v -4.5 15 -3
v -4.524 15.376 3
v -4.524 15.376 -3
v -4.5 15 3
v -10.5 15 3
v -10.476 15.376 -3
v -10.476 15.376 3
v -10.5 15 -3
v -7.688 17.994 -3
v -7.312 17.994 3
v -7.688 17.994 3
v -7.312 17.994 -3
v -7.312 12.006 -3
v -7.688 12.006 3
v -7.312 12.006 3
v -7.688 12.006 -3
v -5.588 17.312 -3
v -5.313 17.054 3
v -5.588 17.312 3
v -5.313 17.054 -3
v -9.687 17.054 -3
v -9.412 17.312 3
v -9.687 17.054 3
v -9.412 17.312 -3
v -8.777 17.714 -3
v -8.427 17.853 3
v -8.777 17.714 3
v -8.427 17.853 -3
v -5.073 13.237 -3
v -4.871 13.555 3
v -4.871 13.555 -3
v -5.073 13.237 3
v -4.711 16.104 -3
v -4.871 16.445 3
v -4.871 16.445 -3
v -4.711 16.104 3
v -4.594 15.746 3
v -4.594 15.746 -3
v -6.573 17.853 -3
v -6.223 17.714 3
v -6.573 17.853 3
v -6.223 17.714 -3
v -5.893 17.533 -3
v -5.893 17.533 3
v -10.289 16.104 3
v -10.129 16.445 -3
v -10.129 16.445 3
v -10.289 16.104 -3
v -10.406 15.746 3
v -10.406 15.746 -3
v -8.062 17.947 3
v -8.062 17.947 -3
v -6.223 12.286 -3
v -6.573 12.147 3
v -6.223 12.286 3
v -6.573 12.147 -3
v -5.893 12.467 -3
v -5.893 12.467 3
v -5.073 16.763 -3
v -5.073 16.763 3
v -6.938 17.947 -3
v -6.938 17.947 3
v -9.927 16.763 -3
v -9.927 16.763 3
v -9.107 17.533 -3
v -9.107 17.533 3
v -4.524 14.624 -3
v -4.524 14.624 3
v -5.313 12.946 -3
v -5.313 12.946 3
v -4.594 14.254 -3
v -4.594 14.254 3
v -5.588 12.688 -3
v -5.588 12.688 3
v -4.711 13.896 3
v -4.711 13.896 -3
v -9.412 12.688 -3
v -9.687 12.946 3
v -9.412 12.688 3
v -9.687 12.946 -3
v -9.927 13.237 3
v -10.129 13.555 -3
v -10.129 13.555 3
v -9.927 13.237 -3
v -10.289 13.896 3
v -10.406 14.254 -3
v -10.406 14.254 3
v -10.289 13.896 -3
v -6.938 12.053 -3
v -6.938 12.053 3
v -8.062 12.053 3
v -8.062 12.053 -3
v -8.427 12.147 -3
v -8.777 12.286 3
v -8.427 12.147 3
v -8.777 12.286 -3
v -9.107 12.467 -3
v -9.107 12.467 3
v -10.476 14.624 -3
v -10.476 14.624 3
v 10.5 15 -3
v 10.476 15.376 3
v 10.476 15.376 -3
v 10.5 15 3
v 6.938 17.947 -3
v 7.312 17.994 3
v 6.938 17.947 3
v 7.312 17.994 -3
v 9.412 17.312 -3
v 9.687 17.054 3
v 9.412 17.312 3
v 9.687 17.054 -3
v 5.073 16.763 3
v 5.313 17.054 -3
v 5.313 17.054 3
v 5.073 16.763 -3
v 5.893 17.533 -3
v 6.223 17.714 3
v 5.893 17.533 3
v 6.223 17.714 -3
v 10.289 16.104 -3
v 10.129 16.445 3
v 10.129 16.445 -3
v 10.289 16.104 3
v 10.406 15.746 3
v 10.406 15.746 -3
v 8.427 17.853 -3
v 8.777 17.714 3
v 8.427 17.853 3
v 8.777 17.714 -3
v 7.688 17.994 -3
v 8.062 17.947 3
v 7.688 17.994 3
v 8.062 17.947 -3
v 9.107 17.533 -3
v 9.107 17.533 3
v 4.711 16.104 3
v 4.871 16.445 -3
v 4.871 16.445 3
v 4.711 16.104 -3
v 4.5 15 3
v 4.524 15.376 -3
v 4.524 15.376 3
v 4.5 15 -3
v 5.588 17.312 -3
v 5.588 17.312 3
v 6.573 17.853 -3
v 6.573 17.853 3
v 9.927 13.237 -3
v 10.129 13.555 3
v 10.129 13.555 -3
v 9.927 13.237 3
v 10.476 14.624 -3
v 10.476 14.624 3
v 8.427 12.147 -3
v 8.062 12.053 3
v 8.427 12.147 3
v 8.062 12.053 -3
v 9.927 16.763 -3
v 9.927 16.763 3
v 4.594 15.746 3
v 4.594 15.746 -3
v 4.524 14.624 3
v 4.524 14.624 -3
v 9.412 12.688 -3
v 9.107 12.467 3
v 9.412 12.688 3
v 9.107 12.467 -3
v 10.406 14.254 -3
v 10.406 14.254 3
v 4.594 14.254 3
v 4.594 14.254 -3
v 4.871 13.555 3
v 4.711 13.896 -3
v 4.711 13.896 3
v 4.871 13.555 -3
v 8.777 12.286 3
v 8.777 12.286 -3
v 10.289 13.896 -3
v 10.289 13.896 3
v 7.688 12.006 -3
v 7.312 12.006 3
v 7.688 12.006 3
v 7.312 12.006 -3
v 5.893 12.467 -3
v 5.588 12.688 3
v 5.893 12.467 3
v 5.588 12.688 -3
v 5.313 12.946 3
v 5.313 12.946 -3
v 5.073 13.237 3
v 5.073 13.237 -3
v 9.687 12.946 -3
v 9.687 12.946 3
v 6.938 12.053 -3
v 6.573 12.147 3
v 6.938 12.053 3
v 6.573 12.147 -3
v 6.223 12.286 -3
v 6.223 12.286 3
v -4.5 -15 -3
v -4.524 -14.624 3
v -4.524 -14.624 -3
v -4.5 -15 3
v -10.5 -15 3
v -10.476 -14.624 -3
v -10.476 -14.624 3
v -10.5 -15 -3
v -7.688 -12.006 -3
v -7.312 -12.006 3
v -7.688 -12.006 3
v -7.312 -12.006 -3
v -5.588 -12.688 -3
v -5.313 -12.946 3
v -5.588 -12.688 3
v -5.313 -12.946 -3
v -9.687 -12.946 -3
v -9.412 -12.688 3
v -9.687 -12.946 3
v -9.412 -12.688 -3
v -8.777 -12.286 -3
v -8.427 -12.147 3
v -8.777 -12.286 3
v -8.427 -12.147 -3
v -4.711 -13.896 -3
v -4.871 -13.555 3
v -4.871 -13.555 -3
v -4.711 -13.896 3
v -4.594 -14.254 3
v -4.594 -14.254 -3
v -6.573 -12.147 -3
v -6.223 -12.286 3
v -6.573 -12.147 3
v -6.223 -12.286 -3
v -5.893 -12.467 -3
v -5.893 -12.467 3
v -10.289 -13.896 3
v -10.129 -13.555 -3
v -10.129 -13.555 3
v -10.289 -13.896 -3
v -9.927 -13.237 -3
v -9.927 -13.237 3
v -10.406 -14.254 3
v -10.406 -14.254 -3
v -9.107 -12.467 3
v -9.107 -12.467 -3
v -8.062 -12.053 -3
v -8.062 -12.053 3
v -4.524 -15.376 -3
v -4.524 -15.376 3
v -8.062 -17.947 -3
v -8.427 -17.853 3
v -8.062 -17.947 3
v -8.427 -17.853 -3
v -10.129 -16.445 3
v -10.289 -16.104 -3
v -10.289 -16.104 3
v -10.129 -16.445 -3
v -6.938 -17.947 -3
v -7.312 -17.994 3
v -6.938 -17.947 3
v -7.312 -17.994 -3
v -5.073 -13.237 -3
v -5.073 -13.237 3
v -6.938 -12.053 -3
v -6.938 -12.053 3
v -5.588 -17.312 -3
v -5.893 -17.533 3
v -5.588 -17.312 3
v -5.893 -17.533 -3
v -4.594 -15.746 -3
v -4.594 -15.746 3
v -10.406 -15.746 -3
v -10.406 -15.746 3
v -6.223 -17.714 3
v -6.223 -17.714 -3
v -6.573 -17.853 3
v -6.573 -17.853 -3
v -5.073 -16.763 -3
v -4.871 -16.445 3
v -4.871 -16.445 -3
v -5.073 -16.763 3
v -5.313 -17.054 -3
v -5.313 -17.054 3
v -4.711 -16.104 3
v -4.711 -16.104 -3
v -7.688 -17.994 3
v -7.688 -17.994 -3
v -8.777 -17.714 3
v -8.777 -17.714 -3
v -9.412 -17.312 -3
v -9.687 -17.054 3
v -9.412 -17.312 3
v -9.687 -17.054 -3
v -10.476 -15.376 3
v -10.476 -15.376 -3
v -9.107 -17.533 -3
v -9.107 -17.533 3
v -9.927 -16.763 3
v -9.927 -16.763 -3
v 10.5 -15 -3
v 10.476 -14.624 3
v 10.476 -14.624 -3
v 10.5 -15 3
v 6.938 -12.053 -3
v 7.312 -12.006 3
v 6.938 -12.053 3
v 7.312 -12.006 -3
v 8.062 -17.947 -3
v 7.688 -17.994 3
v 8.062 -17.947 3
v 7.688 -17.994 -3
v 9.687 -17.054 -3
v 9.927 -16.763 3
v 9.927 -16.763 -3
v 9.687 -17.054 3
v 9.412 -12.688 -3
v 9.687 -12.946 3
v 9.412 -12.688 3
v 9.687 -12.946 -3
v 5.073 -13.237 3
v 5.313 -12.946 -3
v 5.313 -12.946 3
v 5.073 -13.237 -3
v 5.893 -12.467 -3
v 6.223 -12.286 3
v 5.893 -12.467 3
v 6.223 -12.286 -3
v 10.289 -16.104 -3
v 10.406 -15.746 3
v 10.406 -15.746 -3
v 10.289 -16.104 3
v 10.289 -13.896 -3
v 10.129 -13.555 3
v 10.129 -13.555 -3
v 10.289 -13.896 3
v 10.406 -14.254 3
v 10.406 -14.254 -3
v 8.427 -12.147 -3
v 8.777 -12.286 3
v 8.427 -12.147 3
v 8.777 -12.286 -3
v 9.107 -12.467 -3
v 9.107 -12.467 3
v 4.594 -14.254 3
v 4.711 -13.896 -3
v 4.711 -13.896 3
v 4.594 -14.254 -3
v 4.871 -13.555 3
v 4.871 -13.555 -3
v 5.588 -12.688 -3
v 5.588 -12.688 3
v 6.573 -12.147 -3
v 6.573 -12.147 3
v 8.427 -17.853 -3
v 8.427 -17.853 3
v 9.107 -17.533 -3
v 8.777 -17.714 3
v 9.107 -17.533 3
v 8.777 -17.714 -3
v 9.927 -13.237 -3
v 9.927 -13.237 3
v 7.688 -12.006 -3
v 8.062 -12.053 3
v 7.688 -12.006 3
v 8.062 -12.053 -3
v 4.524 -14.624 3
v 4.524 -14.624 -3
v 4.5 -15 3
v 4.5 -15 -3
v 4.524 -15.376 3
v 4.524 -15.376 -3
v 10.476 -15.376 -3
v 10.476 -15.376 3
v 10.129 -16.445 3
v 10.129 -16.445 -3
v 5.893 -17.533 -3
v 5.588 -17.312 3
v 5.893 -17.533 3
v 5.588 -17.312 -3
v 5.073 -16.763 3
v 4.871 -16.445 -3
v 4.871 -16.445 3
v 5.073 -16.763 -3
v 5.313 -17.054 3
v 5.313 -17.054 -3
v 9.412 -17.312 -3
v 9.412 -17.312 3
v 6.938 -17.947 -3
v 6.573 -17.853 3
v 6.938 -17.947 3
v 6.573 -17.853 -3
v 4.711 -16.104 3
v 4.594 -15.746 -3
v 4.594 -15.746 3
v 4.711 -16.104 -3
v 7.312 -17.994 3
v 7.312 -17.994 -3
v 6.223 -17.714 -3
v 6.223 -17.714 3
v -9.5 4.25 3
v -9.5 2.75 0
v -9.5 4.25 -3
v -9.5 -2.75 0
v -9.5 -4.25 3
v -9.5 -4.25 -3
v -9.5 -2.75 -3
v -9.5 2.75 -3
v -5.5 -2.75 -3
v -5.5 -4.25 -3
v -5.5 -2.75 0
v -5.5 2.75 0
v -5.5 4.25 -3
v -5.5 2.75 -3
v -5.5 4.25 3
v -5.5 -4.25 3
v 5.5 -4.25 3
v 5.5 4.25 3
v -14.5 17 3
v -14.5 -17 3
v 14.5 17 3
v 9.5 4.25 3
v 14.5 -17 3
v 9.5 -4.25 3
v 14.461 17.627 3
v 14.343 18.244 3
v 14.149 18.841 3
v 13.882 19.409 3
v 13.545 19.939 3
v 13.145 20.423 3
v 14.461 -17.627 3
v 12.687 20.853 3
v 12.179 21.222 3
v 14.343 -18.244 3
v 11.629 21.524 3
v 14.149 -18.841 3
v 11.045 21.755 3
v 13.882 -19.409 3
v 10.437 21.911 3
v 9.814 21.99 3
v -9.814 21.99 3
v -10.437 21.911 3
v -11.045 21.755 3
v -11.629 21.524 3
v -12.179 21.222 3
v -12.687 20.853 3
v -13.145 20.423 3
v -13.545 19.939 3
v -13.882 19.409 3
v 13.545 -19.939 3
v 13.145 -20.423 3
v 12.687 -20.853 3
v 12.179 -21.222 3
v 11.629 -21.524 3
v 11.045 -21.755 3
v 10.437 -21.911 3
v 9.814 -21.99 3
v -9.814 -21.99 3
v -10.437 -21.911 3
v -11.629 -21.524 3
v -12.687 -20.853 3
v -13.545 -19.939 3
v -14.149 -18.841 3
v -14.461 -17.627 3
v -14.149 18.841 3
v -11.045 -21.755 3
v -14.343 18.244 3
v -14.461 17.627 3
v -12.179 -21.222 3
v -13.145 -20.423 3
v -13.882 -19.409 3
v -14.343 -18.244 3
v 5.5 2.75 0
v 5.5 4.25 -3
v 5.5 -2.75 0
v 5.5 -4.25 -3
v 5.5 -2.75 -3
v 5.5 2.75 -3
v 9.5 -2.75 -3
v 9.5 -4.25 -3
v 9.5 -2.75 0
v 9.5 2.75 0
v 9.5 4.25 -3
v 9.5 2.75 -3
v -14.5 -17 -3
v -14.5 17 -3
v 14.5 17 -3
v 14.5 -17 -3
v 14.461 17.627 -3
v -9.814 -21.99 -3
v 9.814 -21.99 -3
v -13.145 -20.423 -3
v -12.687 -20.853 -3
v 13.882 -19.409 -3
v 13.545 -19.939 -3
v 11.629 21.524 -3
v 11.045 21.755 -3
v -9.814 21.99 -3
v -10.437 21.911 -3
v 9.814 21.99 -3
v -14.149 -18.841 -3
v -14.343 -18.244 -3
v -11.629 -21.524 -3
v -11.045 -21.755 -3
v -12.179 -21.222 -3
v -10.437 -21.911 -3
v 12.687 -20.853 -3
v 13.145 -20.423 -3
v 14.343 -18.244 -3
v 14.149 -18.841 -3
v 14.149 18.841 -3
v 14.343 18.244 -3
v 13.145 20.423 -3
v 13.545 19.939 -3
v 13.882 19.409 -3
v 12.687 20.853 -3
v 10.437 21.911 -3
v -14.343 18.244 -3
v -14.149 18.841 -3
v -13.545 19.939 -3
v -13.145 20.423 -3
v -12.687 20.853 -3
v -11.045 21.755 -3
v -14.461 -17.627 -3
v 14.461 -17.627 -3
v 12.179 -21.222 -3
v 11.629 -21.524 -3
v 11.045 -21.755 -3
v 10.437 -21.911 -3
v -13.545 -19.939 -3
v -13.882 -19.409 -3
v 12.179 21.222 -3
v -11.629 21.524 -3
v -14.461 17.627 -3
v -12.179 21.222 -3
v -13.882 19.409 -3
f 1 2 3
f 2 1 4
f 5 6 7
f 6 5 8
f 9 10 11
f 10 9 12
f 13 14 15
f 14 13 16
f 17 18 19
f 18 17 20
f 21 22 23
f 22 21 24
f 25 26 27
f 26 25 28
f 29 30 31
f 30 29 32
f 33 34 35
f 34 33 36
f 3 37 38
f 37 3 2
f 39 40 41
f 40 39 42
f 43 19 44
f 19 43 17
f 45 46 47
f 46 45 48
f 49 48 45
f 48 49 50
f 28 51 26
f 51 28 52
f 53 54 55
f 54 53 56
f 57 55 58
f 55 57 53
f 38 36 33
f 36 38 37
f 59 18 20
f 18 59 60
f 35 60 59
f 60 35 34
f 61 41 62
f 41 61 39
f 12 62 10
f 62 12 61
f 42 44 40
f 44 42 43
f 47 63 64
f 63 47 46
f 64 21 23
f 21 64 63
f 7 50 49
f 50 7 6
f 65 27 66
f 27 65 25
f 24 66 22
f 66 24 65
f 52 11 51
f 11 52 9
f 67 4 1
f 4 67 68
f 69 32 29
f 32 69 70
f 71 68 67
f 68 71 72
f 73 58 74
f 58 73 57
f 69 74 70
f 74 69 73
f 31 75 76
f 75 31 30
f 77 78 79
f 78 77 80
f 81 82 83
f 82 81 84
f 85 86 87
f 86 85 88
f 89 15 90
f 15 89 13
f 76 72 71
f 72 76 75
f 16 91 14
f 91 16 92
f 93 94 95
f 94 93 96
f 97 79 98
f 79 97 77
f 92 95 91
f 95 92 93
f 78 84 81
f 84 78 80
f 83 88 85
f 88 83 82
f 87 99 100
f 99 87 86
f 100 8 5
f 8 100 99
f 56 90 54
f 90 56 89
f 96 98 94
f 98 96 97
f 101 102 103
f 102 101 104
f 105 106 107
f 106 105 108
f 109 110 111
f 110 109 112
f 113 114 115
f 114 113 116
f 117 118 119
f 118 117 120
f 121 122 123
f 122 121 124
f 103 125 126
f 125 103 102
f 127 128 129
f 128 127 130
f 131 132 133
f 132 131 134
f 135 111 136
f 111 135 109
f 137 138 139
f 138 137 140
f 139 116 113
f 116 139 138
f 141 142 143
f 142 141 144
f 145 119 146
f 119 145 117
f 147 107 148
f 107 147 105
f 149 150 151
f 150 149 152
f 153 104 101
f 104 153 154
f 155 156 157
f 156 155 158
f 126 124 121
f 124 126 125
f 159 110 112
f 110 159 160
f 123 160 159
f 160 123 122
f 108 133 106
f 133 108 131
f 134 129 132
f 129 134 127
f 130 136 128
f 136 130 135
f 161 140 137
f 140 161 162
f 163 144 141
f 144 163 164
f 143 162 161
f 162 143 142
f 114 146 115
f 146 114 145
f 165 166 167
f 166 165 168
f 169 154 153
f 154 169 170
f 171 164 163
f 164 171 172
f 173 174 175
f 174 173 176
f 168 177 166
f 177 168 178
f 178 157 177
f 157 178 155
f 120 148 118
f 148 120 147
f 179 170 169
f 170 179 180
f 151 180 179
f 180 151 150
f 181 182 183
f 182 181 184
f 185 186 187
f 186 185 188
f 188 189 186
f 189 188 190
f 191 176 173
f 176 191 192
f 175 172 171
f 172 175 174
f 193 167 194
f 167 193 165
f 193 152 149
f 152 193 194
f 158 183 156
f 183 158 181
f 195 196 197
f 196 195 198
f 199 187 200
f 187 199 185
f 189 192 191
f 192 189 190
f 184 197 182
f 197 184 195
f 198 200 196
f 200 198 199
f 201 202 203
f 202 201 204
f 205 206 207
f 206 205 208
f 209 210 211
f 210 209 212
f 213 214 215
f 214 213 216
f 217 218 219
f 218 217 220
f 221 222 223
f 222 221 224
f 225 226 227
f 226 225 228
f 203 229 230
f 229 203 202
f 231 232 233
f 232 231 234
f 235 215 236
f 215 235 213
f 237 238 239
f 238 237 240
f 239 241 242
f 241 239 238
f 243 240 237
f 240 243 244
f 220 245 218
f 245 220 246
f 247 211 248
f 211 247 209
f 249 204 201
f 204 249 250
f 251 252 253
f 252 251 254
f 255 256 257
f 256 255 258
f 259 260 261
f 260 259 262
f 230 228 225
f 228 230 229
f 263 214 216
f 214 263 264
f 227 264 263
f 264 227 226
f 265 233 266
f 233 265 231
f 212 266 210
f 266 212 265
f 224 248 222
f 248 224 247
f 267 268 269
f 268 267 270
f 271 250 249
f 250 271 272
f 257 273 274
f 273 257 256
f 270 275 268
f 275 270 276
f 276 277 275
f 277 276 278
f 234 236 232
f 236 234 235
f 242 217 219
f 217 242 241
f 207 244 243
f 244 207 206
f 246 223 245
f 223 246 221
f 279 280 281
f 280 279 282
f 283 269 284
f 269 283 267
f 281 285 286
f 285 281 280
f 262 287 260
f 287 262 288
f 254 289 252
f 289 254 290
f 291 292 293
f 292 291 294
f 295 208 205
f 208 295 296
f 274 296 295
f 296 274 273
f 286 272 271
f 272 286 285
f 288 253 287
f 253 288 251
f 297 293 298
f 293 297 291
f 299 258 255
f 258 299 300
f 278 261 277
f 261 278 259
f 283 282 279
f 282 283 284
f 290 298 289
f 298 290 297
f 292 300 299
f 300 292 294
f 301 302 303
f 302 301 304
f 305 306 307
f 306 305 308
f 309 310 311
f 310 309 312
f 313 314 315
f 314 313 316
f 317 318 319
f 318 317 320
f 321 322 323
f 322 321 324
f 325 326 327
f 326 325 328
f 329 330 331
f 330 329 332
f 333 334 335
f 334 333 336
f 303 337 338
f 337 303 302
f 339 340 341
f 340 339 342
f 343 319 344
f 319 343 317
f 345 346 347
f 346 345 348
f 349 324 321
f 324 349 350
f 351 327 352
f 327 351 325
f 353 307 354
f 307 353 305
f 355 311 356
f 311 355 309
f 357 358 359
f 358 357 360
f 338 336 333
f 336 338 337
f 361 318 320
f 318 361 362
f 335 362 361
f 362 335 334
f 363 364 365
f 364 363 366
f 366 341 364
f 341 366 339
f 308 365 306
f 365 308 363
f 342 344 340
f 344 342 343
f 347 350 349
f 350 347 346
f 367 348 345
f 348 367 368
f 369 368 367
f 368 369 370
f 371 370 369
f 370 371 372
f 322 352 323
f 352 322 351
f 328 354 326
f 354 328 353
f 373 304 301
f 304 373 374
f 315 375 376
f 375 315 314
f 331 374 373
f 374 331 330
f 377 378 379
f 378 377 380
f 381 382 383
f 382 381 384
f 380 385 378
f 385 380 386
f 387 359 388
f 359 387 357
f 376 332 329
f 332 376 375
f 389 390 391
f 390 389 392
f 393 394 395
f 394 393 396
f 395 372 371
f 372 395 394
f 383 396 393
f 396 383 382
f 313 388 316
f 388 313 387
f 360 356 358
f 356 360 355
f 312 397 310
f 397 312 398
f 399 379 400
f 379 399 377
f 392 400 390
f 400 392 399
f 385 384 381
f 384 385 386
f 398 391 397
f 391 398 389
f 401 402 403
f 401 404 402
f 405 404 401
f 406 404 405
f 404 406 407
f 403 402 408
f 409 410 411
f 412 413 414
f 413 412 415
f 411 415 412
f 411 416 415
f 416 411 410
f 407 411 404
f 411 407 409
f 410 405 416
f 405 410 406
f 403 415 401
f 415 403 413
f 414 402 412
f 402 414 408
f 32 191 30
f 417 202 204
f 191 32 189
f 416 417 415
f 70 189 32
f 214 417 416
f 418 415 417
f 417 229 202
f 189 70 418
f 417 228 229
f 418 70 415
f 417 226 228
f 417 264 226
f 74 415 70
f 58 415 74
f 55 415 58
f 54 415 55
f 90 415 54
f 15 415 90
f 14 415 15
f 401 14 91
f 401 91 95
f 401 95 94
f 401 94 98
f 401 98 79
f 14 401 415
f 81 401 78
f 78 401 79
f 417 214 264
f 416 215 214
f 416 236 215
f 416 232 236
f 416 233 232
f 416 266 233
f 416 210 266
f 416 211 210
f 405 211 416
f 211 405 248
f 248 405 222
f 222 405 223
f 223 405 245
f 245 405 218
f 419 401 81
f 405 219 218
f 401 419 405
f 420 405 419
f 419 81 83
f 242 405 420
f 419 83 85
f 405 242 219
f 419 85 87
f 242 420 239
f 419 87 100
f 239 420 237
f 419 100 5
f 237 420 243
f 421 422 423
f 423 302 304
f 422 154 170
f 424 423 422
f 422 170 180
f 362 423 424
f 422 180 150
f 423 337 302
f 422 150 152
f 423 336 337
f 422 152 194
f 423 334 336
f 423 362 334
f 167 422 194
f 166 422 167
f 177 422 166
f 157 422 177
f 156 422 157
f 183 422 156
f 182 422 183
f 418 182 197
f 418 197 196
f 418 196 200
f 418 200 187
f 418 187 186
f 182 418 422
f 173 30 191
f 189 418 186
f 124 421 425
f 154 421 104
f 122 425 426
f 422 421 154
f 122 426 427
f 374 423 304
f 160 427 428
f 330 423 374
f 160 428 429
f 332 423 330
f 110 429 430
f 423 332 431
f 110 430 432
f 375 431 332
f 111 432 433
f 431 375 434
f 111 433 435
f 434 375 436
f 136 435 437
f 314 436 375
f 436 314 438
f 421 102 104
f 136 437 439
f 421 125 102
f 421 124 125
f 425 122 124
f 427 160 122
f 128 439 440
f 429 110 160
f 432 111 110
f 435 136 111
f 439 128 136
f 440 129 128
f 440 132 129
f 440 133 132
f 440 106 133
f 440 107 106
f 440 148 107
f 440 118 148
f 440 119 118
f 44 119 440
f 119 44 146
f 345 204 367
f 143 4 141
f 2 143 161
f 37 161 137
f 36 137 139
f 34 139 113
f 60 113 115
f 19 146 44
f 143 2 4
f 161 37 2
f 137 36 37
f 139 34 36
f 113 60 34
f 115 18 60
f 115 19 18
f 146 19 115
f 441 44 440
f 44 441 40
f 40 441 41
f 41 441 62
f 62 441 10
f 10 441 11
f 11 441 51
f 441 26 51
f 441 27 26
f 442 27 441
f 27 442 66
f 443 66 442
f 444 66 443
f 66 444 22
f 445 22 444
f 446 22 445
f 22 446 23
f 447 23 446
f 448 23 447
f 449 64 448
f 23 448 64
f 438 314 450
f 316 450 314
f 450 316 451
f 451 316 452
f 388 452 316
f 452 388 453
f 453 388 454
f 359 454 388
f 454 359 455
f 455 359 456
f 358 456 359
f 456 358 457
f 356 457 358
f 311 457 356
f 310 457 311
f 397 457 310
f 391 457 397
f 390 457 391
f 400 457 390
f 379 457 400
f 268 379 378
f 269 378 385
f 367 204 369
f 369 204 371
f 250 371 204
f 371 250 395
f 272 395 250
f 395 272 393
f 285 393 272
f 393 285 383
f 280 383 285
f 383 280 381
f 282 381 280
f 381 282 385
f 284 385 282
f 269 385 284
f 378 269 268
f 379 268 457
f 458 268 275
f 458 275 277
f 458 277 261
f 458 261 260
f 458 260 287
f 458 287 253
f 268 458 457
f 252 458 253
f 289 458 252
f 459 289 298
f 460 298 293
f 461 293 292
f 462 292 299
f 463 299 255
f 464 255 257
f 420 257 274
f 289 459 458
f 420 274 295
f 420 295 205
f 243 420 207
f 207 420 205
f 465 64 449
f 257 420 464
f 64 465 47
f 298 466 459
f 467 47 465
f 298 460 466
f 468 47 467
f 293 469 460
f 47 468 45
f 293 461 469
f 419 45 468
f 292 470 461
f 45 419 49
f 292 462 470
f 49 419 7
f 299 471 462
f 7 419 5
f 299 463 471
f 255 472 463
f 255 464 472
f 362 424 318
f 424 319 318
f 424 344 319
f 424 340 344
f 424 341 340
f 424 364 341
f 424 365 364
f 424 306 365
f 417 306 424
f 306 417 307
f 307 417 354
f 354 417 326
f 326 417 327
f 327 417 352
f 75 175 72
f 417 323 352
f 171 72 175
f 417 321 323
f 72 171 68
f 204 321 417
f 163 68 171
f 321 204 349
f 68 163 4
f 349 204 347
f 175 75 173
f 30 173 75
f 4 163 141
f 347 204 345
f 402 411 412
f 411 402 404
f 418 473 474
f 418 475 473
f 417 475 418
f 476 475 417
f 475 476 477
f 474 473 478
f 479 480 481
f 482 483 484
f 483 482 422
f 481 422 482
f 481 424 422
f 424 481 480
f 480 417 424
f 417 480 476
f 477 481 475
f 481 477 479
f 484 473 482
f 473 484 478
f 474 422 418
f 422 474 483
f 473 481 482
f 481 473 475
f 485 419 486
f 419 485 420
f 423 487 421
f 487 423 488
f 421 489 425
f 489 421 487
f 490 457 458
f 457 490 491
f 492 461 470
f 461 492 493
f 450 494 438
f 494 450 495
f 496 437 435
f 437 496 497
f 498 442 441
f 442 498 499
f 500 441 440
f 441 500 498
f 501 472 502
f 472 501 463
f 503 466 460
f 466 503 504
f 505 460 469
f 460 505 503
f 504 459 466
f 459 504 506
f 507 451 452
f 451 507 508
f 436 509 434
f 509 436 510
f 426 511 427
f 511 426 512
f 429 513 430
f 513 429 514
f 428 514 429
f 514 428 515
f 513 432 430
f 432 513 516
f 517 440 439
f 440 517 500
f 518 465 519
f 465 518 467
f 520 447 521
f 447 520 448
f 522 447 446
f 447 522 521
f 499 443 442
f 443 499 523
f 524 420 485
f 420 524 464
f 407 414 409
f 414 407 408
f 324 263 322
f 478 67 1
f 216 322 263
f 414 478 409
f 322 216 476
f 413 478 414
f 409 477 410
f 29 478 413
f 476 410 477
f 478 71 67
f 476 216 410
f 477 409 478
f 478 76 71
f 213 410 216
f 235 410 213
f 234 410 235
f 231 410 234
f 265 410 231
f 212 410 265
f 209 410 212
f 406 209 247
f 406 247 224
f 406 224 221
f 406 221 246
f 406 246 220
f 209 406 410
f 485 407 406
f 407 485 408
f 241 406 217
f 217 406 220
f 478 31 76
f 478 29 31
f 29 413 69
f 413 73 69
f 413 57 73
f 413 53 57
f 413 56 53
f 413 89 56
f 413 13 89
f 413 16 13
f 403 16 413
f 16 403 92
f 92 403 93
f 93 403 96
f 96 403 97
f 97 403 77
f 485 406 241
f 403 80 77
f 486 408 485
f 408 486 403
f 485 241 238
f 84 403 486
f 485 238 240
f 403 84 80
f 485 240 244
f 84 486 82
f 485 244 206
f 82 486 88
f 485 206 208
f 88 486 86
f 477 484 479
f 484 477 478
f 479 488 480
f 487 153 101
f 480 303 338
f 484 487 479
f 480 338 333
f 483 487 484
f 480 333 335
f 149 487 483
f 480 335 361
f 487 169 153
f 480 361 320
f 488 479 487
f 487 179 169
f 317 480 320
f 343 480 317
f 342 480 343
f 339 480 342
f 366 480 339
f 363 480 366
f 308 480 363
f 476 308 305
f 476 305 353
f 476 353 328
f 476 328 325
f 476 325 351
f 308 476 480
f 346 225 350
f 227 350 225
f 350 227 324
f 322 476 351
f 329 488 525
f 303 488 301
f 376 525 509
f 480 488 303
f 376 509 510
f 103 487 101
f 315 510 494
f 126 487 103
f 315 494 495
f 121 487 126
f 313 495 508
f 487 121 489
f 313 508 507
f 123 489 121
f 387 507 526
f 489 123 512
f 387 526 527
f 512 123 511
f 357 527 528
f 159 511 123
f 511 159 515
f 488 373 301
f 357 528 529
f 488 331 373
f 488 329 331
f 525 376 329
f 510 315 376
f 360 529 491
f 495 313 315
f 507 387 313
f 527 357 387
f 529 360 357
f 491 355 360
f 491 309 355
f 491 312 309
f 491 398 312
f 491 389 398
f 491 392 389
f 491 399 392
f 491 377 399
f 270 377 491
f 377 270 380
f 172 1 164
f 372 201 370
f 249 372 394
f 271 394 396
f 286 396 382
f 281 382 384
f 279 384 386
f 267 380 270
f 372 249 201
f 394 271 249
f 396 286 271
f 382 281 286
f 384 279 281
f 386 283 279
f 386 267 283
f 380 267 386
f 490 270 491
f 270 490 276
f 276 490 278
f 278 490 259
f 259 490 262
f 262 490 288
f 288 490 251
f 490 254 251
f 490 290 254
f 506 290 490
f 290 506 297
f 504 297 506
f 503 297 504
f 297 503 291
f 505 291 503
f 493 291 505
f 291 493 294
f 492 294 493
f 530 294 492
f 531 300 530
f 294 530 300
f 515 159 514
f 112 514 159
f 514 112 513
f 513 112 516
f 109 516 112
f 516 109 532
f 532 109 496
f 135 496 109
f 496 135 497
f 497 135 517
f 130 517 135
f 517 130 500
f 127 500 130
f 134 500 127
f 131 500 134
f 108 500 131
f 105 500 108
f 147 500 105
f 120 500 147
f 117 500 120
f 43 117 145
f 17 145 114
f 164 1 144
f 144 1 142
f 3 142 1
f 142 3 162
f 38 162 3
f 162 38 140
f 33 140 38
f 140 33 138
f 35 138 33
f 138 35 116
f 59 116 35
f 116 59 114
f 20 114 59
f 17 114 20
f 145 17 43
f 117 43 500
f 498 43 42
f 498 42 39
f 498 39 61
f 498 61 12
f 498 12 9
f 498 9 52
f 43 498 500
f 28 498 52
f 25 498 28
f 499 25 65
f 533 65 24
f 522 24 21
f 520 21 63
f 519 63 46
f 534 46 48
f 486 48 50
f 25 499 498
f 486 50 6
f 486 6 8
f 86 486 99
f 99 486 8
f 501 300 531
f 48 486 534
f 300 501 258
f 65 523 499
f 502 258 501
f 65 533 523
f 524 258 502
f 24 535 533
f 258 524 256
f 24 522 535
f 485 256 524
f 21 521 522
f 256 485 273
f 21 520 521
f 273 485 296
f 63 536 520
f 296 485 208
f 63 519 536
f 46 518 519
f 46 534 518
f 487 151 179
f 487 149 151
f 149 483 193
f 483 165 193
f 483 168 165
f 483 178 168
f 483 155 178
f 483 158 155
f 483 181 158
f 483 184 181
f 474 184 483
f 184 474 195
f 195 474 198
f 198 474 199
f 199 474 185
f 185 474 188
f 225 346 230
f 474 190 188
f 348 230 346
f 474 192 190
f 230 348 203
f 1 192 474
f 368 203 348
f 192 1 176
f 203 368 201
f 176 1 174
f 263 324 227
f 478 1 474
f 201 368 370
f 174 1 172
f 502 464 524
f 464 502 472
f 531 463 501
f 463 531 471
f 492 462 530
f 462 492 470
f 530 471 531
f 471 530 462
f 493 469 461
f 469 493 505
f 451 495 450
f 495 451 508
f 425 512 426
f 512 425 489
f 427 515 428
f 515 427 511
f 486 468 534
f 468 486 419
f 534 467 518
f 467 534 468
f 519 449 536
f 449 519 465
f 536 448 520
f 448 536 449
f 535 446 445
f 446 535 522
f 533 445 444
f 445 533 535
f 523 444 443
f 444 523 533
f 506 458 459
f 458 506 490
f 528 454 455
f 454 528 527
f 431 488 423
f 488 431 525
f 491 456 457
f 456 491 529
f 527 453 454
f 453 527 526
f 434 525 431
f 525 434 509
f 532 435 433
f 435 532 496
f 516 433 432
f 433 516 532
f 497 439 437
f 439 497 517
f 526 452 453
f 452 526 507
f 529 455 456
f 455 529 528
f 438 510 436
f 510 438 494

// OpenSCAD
$fn = 50;


difference() {
	union() {
		translate(v = [0, 0, -3.0000000000]) {
			rotate(a = [0, 0, 0]) {
				hull() {
					translate(v = [-9.5000000000, 17.0000000000, 0]) {
						rotate(a = [0, 0, 0]) {
							translate(v = [0, 0, 0]) {
								rotate(a = [0, 0, 0]) {
									cylinder(h = 6, r = 5);
								}
							}
						}
					}
					translate(v = [9.5000000000, 17.0000000000, 0]) {
						rotate(a = [0, 0, 0]) {
							translate(v = [0, 0, 0]) {
								rotate(a = [0, 0, 0]) {
									cylinder(h = 6, r = 5);
								}
							}
						}
					}
					translate(v = [-9.5000000000, -17.0000000000, 0]) {
						rotate(a = [0, 0, 0]) {
							translate(v = [0, 0, 0]) {
								rotate(a = [0, 0, 0]) {
									cylinder(h = 6, r = 5);
								}
							}
						}
					}
					translate(v = [9.5000000000, -17.0000000000, 0]) {
						rotate(a = [0, 0, 0]) {
							translate(v = [0, 0, 0]) {
								rotate(a = [0, 0, 0]) {
									cylinder(h = 6, r = 5);
								}
							}
						}
					}
				}
			}
		}
	}
	union() {
		translate(v = [-7.5000000000, 15.0000000000, -125.0000000000]) {
			rotate(a = [0, 0, 0]) {
				cylinder(h = 250, r = 3.0000000000);
			}
		}
		translate(v = [7.5000000000, 15.0000000000, -125.0000000000]) {
			rotate(a = [0, 0, 0]) {
				cylinder(h = 250, r = 3.0000000000);
			}
		}
		translate(v = [-7.5000000000, -15.0000000000, -125.0000000000]) {
			rotate(a = [0, 0, 0]) {
				cylinder(h = 250, r = 3.0000000000);
			}
		}
		translate(v = [7.5000000000, -15.0000000000, -125.0000000000]) {
			rotate(a = [0, 0, 0]) {
				cylinder(h = 250, r = 3.0000000000);
			}
		}
		translate(v = [-9.5000000000, -4.2500000000, -50]) {
			rotate(a = [0, 0, 0]) {
				cube(size = [4, 1.5000000000, 100]);
			}
		}
		translate(v = [-9.5000000000, 2.7500000000, -50]) {
			rotate(a = [0, 0, 0]) {
				cube(size = [4, 1.5000000000, 100]);
			}
		}
		translate(v = [-9.5000000000, -4.2500000000, 0]) {
			rotate(a = [0, 0, 0]) {
				cube(size = [4, 8.5000000000, 3]);
			}
		}
		translate(v = [5.5000000000, -4.2500000000, -50]) {
			rotate(a = [0, 0, 0]) {
				cube(size = [4, 1.5000000000, 100]);
			}
		}
		translate(v = [5.5000000000, 2.7500000000, -50]) {
			rotate(a = [0, 0, 0]) {
				cube(size = [4, 1.5000000000, 100]);
			}
		}
		translate(v = [5.5000000000, -4.2500000000, 0]) {
			rotate(a = [0, 0, 0]) {
				cube(size = [4, 8.5000000000, 3]);
			}
		}
	}
}
